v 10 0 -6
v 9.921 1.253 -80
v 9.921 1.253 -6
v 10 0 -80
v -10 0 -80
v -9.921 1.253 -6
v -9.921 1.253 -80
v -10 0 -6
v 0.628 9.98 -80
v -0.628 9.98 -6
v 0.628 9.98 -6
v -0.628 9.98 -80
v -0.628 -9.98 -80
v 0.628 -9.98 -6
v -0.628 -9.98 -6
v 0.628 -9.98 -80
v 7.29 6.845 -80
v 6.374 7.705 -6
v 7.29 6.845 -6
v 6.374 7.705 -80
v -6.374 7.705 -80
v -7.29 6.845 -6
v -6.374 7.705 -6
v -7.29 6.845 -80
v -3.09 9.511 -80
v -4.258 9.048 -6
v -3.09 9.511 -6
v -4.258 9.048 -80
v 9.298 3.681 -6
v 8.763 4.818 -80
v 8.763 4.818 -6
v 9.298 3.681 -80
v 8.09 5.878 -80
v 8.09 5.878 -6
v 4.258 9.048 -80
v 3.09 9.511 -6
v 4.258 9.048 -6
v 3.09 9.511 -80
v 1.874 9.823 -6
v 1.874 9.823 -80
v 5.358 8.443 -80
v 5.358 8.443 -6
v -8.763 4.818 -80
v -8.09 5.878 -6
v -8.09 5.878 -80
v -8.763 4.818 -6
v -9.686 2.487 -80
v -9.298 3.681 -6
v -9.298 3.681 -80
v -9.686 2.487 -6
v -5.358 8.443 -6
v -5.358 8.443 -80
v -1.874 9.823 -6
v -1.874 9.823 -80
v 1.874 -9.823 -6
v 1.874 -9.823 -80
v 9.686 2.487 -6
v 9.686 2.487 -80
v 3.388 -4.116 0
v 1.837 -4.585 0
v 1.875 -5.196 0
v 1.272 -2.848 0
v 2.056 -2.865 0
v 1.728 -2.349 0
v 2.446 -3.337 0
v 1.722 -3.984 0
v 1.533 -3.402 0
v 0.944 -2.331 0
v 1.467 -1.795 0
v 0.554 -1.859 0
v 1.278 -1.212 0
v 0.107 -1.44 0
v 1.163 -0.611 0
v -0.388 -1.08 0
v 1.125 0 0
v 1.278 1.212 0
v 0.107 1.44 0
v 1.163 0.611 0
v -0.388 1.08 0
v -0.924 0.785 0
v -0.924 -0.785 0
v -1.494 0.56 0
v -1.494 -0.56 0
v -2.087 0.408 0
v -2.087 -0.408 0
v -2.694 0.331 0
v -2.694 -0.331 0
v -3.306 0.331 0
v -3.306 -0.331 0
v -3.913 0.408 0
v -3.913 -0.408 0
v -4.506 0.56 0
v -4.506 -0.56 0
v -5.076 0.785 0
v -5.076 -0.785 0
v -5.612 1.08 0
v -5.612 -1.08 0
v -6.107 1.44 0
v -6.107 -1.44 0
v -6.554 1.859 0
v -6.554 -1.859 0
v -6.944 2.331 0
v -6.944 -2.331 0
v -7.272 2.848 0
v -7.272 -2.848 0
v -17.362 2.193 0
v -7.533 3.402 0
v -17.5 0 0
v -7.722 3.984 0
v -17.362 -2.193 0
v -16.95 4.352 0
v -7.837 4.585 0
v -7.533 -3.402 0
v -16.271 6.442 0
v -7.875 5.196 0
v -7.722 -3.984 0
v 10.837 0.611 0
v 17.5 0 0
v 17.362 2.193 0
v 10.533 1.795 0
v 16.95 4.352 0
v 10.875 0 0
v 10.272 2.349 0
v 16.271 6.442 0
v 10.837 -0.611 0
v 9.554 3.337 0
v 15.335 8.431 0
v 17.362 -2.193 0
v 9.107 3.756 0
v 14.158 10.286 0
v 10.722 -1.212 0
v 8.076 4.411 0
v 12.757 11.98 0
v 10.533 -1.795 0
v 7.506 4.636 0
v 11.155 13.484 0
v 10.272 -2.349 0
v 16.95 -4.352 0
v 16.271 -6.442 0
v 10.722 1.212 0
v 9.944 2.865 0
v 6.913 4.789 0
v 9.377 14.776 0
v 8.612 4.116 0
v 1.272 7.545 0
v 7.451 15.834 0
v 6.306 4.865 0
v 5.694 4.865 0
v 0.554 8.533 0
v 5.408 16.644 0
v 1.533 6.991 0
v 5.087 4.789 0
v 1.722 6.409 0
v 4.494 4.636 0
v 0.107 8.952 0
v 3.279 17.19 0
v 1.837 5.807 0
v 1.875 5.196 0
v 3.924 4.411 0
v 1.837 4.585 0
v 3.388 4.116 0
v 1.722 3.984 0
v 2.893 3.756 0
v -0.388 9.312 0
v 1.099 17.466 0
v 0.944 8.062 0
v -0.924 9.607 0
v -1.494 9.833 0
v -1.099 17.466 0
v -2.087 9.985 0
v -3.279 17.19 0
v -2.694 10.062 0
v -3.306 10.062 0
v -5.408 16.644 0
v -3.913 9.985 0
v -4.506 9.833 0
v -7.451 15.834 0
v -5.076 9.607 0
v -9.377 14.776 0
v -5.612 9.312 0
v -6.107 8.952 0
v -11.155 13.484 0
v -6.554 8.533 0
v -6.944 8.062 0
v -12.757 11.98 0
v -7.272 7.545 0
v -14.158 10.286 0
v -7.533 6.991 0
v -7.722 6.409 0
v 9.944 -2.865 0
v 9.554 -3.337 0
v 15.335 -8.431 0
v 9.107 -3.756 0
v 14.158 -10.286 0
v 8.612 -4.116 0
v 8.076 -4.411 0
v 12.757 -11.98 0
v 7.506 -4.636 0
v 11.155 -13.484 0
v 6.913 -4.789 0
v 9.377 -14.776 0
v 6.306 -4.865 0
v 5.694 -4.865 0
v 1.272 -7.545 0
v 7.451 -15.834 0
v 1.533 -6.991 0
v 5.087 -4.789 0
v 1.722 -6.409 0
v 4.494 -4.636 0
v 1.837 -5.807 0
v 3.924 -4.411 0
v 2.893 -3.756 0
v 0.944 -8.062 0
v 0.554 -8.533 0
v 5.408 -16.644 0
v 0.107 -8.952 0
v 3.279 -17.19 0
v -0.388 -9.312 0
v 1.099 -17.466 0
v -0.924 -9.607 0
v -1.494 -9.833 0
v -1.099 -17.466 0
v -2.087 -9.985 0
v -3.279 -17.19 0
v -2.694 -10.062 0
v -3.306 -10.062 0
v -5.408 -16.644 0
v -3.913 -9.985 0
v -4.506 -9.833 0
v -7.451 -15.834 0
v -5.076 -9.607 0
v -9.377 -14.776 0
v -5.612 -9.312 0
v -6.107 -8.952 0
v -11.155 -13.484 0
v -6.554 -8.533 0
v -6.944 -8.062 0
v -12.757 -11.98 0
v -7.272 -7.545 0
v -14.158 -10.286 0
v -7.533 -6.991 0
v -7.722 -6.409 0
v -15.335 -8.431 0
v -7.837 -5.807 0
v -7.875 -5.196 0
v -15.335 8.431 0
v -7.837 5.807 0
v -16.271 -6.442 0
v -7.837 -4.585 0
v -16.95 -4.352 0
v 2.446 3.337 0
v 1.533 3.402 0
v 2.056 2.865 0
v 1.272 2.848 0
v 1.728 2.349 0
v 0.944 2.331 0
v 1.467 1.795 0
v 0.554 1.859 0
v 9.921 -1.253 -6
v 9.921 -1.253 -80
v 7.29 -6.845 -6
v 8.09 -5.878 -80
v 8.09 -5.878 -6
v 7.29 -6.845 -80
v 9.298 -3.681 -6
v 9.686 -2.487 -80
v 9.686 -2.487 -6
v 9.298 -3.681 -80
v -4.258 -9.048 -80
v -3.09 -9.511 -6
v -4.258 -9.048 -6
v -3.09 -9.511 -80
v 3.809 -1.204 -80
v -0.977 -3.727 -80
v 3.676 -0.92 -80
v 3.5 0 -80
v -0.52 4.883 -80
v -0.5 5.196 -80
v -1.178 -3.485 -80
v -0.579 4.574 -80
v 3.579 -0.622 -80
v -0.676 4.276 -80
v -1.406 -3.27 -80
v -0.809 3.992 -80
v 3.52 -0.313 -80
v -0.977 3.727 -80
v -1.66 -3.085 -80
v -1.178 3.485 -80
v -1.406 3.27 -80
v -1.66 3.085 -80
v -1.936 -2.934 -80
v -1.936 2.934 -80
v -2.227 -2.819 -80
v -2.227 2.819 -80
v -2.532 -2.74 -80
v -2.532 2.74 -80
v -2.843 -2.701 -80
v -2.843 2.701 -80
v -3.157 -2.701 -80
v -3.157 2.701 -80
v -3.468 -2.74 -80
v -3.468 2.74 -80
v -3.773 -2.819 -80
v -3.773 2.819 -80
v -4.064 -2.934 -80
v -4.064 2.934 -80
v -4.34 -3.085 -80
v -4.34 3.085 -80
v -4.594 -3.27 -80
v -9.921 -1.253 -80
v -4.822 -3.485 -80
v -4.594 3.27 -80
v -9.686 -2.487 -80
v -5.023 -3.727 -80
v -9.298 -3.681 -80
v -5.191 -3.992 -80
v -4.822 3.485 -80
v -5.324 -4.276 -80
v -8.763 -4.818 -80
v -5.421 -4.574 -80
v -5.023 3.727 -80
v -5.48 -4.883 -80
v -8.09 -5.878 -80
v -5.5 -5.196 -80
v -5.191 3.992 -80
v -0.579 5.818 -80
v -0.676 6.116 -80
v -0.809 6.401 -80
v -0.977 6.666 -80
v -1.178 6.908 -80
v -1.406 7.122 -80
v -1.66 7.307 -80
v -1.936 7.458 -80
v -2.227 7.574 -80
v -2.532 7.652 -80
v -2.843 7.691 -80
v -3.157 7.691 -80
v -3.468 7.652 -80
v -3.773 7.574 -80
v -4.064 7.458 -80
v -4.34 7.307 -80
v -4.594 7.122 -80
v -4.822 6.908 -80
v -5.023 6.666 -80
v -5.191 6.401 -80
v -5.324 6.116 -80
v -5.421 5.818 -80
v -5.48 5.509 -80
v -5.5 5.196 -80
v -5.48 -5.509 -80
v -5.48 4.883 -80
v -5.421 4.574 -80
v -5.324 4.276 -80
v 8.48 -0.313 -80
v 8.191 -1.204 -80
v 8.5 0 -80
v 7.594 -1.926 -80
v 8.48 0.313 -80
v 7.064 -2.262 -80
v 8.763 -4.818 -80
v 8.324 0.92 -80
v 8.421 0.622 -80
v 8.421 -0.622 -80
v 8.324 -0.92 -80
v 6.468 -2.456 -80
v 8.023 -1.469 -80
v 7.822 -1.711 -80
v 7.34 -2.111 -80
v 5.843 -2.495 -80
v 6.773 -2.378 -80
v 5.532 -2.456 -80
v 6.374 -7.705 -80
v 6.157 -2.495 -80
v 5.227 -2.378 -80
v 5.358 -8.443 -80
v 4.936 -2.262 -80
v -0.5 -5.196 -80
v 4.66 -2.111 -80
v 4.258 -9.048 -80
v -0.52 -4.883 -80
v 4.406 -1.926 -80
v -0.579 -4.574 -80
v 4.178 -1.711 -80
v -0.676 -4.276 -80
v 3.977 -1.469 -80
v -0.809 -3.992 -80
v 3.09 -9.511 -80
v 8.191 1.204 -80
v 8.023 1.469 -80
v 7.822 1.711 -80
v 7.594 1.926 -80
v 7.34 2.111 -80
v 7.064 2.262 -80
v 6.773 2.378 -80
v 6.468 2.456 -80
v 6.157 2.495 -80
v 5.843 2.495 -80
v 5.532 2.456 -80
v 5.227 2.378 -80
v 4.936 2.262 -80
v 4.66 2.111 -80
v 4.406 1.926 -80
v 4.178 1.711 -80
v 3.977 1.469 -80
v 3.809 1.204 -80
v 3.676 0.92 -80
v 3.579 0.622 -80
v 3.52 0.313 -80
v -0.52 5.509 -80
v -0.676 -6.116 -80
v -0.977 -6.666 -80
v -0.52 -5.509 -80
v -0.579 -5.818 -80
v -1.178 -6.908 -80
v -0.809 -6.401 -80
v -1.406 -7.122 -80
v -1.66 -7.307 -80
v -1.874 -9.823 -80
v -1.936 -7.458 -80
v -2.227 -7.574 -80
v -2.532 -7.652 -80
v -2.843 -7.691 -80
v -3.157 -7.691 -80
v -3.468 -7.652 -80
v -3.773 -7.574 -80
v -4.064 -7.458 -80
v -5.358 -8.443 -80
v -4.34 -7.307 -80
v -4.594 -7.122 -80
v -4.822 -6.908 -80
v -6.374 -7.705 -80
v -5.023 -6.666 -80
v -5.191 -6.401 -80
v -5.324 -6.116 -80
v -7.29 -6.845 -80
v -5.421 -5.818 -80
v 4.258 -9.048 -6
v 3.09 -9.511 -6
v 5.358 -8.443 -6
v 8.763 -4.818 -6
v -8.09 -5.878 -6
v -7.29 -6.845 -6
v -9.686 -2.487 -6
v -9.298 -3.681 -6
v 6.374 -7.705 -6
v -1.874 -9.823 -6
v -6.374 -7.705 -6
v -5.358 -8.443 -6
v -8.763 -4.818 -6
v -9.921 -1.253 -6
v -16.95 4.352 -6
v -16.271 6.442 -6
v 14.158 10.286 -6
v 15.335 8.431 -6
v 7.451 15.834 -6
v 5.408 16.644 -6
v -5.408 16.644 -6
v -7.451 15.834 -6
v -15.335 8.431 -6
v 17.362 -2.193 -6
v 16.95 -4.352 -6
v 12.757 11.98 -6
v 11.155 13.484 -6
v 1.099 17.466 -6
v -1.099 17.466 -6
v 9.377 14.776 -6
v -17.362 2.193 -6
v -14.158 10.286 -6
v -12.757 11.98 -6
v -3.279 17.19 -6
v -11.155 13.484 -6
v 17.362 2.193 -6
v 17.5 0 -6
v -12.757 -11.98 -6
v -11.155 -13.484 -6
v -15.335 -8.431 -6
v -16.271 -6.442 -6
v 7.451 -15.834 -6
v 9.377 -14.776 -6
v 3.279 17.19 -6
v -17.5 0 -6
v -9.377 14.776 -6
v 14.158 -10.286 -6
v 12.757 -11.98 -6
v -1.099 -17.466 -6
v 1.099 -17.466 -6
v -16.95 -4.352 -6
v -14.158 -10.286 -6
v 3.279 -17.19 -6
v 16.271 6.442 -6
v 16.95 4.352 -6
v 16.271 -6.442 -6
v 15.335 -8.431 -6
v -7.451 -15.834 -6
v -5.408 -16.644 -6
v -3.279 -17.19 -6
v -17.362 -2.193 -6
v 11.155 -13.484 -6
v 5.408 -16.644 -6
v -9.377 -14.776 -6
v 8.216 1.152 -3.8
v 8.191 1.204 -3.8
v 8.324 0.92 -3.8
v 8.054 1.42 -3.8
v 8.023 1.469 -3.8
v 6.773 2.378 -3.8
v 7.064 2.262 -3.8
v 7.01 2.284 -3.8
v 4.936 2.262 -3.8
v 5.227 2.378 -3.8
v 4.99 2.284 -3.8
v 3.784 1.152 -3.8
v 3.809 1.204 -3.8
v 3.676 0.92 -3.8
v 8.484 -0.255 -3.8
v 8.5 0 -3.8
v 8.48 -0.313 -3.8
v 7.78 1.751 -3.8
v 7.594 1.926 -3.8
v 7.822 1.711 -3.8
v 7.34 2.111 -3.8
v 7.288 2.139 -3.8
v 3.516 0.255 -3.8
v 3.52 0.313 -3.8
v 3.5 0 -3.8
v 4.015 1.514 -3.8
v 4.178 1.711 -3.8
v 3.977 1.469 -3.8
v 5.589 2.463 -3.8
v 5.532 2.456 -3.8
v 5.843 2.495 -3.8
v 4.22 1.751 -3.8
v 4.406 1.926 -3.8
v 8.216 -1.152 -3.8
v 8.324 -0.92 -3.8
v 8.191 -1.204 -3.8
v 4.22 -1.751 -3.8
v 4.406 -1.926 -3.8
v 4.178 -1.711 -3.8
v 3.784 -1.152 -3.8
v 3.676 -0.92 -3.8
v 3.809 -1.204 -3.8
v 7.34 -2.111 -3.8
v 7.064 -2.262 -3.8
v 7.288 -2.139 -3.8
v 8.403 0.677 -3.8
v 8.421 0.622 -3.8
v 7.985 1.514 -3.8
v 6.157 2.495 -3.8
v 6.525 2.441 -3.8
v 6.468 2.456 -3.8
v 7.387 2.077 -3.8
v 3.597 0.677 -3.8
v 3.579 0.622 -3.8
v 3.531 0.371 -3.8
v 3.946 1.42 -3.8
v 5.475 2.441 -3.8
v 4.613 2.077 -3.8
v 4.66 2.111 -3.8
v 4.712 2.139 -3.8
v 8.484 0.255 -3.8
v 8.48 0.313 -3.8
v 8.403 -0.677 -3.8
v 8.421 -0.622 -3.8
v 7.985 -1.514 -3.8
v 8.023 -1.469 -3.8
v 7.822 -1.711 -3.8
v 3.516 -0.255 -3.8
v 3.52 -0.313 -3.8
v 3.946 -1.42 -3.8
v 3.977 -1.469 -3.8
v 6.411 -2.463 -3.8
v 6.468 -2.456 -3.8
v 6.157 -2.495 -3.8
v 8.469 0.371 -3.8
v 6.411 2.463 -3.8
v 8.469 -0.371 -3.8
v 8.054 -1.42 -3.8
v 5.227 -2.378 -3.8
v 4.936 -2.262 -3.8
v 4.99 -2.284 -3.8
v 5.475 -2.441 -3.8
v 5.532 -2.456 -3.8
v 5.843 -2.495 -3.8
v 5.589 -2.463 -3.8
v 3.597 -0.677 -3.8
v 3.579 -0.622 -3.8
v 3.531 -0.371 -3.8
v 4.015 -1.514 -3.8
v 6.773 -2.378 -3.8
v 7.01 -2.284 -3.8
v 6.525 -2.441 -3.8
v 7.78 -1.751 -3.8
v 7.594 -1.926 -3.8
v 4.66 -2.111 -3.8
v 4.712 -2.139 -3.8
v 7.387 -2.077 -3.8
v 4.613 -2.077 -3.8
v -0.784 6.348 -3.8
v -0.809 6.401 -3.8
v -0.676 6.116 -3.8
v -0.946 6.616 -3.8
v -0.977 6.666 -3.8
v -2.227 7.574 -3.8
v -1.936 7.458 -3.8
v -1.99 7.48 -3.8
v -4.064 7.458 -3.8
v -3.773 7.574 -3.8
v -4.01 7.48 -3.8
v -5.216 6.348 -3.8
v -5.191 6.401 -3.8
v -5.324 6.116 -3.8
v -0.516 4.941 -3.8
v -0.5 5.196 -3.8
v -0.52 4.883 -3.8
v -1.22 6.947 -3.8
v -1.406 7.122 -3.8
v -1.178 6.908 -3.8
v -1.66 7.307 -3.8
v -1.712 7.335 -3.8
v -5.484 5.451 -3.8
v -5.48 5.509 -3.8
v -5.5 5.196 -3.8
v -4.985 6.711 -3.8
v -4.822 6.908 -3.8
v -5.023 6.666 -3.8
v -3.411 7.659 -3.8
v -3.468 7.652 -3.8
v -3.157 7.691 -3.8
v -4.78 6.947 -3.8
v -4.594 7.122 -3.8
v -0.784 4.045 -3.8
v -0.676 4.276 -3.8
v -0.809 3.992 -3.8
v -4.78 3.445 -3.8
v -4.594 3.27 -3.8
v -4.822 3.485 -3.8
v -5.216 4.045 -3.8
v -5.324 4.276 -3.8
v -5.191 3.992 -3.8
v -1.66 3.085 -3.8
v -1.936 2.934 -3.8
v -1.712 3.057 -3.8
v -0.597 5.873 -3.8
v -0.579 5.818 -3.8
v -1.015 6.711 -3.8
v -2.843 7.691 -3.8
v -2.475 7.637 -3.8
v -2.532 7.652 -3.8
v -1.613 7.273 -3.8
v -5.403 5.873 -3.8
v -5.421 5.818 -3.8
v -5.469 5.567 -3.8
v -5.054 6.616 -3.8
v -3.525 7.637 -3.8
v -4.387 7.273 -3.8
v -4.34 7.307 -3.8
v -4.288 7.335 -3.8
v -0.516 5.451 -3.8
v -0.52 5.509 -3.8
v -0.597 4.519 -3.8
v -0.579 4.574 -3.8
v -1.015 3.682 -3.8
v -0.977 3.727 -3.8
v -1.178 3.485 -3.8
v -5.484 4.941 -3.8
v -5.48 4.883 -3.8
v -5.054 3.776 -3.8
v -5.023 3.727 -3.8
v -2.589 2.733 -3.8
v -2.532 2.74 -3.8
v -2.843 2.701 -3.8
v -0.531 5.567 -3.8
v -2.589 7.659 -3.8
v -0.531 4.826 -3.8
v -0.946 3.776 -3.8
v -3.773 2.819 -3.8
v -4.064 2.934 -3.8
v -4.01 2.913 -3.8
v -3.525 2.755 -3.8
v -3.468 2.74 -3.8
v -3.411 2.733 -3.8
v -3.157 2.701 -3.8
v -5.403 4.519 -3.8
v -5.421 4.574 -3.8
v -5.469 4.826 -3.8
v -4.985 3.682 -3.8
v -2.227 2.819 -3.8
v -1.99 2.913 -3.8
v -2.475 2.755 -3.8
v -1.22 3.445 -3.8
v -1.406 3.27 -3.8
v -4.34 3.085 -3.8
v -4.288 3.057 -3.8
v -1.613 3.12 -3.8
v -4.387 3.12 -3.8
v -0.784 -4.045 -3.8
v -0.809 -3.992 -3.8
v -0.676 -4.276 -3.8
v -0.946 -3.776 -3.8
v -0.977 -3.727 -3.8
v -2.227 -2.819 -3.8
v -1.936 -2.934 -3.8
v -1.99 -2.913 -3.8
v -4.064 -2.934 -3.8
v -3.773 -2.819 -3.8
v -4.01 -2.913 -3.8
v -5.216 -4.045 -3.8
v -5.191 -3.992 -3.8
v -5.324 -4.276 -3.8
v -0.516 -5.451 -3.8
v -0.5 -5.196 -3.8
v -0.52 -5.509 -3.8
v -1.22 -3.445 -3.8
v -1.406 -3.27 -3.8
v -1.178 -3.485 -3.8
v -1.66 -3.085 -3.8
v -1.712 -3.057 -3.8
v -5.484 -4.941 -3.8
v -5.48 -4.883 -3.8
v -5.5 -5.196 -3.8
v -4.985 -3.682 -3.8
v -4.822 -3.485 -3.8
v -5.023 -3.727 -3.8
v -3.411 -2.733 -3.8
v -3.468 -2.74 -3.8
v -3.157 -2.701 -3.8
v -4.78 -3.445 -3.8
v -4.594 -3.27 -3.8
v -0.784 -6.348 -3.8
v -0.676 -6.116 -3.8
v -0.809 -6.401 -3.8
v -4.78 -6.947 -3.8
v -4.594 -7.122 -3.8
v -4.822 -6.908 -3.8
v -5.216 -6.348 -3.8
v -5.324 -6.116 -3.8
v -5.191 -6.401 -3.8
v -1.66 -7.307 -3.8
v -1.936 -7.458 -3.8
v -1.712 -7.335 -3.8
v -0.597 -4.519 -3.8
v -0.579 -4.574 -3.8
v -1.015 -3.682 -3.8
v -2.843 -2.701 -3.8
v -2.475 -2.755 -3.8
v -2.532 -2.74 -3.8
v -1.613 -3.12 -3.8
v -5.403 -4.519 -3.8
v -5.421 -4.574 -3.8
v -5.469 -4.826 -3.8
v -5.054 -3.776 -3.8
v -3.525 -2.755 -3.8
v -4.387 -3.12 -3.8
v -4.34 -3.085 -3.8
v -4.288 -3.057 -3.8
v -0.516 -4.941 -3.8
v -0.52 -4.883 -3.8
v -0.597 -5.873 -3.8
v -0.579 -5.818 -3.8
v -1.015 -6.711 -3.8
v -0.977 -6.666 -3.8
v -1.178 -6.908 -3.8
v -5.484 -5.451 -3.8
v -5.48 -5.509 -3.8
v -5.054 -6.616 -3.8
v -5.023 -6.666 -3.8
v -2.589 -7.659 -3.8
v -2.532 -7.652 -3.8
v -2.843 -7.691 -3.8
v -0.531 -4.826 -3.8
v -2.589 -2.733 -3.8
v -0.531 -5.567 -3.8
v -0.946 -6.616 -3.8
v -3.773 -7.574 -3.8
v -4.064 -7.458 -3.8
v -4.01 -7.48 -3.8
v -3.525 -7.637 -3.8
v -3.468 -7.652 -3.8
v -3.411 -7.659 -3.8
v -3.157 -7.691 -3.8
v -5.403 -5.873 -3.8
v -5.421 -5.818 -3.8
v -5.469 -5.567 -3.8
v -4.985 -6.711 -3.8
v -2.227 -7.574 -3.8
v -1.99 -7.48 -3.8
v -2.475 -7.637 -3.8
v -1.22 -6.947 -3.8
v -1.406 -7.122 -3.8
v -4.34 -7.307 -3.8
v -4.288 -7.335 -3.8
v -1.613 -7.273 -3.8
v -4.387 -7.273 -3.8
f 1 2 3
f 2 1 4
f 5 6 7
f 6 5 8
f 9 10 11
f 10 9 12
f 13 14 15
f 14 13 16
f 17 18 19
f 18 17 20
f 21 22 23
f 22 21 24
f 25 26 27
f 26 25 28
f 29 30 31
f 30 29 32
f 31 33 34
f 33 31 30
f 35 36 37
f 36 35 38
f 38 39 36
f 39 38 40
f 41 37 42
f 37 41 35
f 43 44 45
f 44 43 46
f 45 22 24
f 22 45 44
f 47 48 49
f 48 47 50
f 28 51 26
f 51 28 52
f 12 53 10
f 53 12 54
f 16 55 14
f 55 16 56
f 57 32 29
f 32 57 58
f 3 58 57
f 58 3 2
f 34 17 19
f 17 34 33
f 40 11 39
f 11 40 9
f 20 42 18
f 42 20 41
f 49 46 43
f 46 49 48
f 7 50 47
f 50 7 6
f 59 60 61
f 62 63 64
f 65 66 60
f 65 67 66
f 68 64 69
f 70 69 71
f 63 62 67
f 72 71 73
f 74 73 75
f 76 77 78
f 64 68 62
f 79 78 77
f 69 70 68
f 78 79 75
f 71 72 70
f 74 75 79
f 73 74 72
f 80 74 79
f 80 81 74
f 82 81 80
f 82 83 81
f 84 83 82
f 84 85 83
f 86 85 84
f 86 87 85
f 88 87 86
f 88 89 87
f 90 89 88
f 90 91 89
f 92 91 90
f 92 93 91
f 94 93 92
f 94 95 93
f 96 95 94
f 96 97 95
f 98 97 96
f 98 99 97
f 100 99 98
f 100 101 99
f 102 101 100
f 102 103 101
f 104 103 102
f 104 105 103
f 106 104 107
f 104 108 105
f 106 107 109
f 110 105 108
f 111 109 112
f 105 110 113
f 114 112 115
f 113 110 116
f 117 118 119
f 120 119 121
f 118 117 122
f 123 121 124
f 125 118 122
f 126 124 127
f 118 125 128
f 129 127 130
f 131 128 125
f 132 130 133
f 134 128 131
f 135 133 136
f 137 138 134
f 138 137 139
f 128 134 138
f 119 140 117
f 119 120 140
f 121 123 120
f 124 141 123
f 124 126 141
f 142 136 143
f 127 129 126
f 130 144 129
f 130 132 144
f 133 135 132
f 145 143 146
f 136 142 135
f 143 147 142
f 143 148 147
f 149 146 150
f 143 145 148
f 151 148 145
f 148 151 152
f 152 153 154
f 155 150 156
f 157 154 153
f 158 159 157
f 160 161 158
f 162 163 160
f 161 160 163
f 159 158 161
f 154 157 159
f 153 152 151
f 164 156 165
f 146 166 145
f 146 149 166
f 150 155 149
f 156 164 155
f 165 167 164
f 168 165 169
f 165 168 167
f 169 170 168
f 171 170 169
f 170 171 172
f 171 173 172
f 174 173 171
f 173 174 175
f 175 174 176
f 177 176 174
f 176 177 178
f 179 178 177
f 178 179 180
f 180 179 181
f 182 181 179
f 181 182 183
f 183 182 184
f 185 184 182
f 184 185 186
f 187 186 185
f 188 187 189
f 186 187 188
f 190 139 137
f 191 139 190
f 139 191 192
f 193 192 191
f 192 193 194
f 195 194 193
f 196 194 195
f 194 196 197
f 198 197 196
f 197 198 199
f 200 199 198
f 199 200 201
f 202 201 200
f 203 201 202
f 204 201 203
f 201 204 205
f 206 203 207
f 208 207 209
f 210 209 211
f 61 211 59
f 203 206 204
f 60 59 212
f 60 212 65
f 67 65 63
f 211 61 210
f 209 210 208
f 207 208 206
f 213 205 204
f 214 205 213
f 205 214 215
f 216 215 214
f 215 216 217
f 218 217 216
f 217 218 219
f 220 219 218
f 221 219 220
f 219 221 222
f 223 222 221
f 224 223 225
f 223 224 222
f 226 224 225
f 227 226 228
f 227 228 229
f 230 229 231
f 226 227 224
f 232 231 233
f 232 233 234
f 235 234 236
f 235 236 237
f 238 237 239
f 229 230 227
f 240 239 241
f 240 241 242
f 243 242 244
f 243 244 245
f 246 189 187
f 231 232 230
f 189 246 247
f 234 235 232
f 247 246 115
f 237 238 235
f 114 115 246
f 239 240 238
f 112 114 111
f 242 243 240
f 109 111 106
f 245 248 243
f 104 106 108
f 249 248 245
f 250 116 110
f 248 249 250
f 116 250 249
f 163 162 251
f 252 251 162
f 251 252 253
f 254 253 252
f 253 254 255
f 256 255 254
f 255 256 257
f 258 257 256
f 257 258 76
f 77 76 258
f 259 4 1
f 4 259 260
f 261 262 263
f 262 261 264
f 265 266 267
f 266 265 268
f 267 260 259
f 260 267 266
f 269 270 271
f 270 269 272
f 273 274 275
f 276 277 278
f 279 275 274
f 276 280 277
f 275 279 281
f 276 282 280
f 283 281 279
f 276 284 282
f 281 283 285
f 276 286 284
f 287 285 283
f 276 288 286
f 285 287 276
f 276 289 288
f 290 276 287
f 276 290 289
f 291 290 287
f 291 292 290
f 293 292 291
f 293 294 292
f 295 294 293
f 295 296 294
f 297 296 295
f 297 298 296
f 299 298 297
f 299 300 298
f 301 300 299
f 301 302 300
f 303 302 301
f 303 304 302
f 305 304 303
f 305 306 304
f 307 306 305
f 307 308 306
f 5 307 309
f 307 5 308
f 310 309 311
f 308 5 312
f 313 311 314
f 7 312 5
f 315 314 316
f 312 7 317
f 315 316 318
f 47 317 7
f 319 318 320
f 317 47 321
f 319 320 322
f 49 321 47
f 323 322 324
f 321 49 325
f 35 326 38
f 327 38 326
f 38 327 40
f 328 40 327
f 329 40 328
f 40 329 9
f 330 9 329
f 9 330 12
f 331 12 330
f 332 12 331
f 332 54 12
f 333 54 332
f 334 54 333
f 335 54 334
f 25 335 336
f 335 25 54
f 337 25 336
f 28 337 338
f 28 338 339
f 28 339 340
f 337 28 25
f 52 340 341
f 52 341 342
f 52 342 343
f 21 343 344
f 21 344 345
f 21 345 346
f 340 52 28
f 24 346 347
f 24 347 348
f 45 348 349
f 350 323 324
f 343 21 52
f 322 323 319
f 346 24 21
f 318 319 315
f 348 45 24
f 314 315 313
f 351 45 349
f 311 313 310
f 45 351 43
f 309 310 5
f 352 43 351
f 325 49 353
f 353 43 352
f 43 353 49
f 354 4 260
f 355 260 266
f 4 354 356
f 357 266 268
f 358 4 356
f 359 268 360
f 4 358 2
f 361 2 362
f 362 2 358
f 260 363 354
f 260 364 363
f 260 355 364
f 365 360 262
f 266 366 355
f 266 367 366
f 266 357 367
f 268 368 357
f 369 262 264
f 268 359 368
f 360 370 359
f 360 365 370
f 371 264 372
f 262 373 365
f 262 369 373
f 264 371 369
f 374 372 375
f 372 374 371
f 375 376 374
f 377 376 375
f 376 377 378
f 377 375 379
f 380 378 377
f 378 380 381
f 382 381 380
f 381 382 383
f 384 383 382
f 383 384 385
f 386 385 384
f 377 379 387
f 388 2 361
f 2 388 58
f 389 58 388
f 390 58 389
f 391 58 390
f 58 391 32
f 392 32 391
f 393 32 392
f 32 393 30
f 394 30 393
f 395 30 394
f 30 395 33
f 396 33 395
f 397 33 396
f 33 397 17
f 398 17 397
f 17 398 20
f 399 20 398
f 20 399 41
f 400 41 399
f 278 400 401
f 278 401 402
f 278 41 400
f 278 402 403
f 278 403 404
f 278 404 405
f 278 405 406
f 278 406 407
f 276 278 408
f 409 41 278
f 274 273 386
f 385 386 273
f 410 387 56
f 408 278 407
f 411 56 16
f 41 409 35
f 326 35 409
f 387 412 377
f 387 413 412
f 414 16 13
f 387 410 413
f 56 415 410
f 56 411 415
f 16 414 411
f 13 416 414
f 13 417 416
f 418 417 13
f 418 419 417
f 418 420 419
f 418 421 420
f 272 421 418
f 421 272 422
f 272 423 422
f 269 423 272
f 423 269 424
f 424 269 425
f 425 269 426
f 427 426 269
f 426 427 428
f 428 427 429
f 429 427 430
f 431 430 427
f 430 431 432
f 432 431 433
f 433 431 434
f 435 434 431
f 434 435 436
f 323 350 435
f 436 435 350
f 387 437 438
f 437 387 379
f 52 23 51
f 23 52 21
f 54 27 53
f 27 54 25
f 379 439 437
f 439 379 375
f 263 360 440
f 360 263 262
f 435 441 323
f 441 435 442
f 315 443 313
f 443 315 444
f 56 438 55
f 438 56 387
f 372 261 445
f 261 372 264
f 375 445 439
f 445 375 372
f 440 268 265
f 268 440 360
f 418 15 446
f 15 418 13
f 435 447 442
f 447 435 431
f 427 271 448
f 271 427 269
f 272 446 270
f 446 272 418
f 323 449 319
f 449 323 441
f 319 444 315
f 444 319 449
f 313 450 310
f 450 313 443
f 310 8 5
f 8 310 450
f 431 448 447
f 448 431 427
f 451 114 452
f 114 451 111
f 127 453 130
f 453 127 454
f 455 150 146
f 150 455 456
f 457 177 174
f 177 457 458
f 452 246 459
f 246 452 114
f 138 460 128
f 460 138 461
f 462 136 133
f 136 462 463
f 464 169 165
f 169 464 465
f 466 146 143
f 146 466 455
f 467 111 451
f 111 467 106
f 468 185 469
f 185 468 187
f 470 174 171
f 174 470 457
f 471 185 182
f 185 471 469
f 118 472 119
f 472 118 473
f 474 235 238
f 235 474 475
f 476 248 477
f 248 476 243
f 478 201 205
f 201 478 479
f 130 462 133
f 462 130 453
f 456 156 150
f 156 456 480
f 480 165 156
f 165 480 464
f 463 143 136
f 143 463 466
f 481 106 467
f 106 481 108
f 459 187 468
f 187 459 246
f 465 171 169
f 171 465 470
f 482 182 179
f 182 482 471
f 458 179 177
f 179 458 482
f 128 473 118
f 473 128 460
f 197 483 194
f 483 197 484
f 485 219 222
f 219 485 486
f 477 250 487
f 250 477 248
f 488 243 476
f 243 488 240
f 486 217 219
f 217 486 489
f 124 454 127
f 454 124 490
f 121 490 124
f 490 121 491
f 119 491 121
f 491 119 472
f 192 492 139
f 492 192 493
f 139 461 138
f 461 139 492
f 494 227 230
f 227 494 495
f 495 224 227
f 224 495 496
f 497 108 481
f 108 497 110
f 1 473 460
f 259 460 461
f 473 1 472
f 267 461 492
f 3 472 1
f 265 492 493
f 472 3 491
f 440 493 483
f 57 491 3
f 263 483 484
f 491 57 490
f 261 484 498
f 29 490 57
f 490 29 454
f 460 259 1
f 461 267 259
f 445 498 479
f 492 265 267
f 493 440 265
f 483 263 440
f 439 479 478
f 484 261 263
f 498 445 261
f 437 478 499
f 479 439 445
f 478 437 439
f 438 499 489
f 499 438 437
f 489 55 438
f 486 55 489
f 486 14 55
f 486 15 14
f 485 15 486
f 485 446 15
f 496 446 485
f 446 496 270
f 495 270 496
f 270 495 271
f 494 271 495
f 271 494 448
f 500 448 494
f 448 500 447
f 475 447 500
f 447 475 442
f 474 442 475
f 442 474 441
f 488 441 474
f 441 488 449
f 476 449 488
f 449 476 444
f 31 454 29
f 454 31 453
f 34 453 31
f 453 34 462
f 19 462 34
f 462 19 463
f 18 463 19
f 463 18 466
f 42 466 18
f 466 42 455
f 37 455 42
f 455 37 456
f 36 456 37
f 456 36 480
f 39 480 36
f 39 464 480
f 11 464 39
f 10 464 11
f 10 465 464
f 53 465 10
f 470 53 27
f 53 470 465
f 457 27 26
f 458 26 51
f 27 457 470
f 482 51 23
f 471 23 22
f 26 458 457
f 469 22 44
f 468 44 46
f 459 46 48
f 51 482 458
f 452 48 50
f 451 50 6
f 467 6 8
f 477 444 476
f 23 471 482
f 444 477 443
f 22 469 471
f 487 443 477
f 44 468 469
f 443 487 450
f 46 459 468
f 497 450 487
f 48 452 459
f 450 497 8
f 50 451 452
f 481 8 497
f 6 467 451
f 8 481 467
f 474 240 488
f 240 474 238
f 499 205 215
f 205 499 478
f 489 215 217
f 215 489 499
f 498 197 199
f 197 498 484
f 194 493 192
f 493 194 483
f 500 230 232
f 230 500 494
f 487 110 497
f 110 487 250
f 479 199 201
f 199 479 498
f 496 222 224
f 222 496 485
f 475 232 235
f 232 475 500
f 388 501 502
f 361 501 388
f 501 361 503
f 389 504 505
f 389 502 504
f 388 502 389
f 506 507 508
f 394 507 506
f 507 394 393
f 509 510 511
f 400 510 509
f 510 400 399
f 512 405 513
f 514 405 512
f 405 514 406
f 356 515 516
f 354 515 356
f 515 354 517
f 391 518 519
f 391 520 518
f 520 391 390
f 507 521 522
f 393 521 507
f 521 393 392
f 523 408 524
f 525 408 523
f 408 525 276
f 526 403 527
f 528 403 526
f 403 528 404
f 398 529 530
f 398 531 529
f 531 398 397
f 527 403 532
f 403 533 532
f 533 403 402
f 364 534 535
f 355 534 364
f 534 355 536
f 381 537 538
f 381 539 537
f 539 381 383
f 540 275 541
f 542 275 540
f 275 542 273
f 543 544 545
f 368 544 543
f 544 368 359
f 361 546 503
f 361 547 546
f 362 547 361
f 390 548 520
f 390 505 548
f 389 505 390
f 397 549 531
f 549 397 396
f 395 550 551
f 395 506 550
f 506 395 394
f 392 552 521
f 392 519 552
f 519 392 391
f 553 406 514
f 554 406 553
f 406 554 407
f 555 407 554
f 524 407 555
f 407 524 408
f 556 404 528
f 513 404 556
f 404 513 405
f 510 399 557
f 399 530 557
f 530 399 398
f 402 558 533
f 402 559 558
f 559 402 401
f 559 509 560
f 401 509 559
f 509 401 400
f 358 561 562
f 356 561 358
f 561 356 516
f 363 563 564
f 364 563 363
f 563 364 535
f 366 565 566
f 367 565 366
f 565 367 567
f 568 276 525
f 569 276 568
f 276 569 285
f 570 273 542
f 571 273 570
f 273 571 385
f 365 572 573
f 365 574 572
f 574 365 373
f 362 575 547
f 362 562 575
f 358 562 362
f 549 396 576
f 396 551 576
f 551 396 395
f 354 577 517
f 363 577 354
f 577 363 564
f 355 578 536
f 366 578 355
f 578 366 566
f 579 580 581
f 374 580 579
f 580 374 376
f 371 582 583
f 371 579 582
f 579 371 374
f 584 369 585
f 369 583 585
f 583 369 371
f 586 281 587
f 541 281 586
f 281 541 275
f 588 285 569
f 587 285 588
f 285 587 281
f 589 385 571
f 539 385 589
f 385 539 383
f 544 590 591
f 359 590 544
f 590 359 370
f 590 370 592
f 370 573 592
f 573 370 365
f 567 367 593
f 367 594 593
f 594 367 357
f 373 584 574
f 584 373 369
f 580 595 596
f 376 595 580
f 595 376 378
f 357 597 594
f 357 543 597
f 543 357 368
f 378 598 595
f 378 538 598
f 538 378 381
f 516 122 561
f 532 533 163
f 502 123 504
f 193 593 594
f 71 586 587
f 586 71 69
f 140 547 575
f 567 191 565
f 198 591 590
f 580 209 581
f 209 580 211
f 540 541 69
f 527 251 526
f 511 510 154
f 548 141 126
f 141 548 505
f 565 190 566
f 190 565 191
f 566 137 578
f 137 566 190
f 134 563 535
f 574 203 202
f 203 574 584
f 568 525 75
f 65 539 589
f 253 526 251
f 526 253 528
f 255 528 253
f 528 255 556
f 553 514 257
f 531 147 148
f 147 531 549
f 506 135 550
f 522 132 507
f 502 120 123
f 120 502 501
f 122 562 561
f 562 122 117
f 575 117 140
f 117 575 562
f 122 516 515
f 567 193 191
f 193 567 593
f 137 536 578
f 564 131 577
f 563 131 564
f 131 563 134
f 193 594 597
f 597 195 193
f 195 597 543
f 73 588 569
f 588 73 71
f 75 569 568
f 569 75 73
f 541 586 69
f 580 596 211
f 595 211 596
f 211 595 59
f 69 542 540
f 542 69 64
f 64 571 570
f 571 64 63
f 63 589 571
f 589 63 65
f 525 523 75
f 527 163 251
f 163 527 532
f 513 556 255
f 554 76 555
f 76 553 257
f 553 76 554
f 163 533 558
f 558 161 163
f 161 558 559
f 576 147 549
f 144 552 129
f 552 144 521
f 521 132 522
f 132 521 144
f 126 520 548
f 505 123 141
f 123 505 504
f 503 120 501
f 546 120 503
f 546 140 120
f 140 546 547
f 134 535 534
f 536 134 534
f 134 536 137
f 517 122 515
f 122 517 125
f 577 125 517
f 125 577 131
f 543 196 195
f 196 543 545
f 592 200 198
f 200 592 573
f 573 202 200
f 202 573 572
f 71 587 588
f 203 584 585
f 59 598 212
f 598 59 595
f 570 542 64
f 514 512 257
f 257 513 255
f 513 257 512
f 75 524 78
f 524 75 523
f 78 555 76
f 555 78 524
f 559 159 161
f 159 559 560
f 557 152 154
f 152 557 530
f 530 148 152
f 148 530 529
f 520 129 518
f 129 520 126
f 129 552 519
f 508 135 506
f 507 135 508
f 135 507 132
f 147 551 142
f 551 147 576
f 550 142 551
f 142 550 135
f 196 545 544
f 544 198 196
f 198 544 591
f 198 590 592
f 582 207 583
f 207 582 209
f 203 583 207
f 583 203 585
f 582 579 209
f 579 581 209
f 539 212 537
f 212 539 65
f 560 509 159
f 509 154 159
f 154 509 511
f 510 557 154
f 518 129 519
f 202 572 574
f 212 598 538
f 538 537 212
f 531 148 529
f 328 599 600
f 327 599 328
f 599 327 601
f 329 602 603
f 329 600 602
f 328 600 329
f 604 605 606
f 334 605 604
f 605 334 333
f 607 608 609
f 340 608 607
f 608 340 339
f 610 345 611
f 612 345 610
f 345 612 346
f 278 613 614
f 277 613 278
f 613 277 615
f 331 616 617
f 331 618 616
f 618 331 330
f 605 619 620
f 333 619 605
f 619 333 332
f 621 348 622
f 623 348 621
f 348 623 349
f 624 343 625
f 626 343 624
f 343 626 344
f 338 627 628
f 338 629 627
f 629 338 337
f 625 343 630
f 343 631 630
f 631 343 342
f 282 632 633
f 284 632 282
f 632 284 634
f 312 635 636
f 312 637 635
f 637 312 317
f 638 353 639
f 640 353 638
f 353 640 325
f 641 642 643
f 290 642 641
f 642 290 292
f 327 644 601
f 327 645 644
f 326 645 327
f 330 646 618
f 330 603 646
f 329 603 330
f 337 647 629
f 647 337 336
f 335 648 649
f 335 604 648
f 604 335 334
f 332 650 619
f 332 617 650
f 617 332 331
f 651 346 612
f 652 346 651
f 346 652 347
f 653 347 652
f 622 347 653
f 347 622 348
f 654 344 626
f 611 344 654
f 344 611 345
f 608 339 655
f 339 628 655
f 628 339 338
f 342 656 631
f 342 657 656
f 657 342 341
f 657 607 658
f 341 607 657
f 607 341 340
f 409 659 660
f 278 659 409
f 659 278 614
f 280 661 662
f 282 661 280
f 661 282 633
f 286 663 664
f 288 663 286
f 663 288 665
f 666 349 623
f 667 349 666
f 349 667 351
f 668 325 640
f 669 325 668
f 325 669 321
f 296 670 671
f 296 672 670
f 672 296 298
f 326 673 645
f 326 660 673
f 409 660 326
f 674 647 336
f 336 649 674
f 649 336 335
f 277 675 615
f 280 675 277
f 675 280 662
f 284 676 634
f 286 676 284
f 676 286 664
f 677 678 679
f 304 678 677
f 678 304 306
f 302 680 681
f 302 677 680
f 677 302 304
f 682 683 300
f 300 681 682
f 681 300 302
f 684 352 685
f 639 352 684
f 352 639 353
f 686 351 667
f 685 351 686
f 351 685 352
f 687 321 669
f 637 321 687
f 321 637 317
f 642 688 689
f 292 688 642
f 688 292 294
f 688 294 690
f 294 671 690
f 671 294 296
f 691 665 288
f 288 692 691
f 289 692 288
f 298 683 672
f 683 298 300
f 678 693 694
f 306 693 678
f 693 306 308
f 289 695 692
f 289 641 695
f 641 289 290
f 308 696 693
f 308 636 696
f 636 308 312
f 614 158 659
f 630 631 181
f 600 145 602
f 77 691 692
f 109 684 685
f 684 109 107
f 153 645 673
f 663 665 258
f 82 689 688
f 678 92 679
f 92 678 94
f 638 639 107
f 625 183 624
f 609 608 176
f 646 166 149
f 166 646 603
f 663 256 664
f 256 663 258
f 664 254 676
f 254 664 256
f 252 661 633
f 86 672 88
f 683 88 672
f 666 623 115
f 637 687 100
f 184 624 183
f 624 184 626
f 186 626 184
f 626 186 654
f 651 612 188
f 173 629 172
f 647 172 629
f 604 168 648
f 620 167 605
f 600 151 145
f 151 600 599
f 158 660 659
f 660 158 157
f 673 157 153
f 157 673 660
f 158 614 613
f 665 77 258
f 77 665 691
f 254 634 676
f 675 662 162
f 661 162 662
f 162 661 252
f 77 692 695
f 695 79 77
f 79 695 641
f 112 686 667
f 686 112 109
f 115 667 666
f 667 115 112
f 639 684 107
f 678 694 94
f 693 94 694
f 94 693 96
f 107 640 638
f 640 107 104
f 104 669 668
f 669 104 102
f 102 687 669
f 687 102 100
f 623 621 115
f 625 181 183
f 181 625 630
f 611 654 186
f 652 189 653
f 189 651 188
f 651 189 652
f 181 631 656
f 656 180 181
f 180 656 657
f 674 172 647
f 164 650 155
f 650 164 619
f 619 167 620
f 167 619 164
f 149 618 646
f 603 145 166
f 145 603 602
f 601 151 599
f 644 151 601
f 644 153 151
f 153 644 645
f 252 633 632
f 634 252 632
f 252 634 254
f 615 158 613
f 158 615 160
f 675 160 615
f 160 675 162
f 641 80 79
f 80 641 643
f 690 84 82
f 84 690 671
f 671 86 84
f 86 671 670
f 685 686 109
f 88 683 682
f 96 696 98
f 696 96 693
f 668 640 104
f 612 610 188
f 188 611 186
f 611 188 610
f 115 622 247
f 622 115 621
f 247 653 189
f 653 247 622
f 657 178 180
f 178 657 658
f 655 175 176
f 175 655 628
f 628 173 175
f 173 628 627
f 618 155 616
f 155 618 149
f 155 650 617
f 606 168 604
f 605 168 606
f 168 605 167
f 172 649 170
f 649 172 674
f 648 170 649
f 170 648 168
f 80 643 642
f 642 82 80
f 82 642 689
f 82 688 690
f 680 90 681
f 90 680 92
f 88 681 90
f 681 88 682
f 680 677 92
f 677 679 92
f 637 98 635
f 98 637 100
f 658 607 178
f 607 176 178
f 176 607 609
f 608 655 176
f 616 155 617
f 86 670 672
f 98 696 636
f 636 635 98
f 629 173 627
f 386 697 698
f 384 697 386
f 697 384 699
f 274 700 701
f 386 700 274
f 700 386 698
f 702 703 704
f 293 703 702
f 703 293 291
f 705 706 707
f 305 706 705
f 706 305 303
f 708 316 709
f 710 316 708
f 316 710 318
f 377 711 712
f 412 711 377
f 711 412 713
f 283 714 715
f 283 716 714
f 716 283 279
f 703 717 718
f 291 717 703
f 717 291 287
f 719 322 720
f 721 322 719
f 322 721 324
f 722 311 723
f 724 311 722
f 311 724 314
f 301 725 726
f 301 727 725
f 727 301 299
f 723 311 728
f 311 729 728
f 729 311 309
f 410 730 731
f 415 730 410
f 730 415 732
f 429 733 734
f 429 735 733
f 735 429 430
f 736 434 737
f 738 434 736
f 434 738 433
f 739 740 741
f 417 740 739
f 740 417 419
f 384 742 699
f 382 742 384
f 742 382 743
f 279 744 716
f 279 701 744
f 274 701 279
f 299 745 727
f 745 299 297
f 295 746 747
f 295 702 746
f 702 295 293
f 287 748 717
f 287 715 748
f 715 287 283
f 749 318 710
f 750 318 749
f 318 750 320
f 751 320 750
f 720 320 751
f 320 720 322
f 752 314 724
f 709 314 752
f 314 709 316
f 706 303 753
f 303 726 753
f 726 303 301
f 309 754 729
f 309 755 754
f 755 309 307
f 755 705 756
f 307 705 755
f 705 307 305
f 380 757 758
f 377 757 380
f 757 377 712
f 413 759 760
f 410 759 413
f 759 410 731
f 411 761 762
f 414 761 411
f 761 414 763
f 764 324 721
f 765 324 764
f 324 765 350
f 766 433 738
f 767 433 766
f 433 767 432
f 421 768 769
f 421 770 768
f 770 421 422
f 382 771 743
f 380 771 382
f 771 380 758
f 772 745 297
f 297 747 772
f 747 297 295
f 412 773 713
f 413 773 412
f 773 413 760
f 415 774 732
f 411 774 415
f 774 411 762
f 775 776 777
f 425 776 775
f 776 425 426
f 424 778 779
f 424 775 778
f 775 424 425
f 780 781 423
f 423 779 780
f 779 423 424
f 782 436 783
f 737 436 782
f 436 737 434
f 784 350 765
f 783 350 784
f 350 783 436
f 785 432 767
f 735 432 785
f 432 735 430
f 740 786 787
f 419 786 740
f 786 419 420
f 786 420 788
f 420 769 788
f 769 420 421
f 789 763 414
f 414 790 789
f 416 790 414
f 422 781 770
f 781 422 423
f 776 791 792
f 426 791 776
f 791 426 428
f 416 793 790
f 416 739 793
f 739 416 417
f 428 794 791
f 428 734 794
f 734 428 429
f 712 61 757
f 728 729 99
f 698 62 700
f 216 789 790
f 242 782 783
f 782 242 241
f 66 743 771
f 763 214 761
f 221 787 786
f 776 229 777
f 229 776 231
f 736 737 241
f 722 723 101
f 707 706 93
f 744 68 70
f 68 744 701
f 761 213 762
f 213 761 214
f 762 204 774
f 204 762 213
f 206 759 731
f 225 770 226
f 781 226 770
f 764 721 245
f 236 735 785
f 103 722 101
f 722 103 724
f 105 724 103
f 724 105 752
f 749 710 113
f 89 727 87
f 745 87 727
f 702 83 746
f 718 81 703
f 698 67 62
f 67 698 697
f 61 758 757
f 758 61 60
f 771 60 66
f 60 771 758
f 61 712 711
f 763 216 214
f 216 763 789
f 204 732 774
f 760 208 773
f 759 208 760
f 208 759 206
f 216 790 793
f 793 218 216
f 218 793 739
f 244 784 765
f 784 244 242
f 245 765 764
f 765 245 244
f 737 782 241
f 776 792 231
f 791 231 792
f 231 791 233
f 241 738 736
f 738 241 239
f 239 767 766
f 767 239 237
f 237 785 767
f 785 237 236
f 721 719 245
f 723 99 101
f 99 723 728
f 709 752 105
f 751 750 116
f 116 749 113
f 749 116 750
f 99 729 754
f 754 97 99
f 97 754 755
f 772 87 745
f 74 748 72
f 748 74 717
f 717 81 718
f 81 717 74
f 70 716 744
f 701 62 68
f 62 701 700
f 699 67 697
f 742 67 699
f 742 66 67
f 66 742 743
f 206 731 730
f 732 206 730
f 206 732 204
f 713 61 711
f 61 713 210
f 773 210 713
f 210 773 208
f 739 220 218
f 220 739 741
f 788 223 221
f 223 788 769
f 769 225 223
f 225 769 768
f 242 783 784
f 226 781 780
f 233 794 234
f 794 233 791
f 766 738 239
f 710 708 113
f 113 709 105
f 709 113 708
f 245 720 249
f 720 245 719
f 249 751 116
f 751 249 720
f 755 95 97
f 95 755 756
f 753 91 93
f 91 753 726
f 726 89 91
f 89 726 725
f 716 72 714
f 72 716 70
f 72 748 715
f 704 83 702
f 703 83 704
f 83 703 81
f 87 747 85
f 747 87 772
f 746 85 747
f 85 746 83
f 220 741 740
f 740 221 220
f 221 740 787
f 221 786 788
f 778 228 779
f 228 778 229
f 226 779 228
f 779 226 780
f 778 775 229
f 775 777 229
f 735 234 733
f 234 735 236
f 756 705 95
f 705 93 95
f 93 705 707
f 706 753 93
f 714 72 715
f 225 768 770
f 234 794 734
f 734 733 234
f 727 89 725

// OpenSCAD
$fn = 50;


difference() {
	union() {
		translate(v = [0, 0, -80.0000000000]) {
			cylinder(h = 80, r = 10.0000000000);
		}
		translate(v = [0, 0, -6.0000000000]) {
			cylinder(h = 6, r = 17.5000000000);
		}
	}
	union() {
		translate(v = [6.0000000000, 0.0000000000, 0]) {
			rotate(a = [0, 0, 0]) {
				difference() {
					union() {
						#translate(v = [0, 0, -80.0000000000]) {
							cylinder(h = 80, r = 2.2500000000);
						}
						#translate(v = [0, 0, -80.0000000000]) {
							cylinder(h = 80, r = 2.5000000000);
						}
						#translate(v = [0, 0, -4.2000000000]) {
							cylinder(h = 4.2000000000, r = 10.0000000000, r1 = 2.2500000000, r2 = 4.8750000000);
						}
						#translate(v = [0, 0, -80.0000000000]) {
							cylinder(h = 80, r = 2.2500000000);
						}
					}
					union();
				}
			}
		}
		translate(v = [-3.0000000000, 5.1961524227, 0]) {
			rotate(a = [0, 0, 0]) {
				difference() {
					union() {
						#translate(v = [0, 0, -80.0000000000]) {
							cylinder(h = 80, r = 2.2500000000);
						}
						#translate(v = [0, 0, -80.0000000000]) {
							cylinder(h = 80, r = 2.5000000000);
						}
						#translate(v = [0, 0, -4.2000000000]) {
							cylinder(h = 4.2000000000, r = 10.0000000000, r1 = 2.2500000000, r2 = 4.8750000000);
						}
						#translate(v = [0, 0, -80.0000000000]) {
							cylinder(h = 80, r = 2.2500000000);
						}
					}
					union();
				}
			}
		}
		translate(v = [-3.0000000000, -5.1961524227, 0]) {
			rotate(a = [0, 0, 0]) {
				difference() {
					union() {
						#translate(v = [0, 0, -80.0000000000]) {
							cylinder(h = 80, r = 2.2500000000);
						}
						#translate(v = [0, 0, -80.0000000000]) {
							cylinder(h = 80, r = 2.5000000000);
						}
						#translate(v = [0, 0, -4.2000000000]) {
							cylinder(h = 4.2000000000, r = 10.0000000000, r1 = 2.2500000000, r2 = 4.8750000000);
						}
						#translate(v = [0, 0, -80.0000000000]) {
							cylinder(h = 80, r = 2.2500000000);
						}
					}
					union();
				}
			}
		}
	}
}
